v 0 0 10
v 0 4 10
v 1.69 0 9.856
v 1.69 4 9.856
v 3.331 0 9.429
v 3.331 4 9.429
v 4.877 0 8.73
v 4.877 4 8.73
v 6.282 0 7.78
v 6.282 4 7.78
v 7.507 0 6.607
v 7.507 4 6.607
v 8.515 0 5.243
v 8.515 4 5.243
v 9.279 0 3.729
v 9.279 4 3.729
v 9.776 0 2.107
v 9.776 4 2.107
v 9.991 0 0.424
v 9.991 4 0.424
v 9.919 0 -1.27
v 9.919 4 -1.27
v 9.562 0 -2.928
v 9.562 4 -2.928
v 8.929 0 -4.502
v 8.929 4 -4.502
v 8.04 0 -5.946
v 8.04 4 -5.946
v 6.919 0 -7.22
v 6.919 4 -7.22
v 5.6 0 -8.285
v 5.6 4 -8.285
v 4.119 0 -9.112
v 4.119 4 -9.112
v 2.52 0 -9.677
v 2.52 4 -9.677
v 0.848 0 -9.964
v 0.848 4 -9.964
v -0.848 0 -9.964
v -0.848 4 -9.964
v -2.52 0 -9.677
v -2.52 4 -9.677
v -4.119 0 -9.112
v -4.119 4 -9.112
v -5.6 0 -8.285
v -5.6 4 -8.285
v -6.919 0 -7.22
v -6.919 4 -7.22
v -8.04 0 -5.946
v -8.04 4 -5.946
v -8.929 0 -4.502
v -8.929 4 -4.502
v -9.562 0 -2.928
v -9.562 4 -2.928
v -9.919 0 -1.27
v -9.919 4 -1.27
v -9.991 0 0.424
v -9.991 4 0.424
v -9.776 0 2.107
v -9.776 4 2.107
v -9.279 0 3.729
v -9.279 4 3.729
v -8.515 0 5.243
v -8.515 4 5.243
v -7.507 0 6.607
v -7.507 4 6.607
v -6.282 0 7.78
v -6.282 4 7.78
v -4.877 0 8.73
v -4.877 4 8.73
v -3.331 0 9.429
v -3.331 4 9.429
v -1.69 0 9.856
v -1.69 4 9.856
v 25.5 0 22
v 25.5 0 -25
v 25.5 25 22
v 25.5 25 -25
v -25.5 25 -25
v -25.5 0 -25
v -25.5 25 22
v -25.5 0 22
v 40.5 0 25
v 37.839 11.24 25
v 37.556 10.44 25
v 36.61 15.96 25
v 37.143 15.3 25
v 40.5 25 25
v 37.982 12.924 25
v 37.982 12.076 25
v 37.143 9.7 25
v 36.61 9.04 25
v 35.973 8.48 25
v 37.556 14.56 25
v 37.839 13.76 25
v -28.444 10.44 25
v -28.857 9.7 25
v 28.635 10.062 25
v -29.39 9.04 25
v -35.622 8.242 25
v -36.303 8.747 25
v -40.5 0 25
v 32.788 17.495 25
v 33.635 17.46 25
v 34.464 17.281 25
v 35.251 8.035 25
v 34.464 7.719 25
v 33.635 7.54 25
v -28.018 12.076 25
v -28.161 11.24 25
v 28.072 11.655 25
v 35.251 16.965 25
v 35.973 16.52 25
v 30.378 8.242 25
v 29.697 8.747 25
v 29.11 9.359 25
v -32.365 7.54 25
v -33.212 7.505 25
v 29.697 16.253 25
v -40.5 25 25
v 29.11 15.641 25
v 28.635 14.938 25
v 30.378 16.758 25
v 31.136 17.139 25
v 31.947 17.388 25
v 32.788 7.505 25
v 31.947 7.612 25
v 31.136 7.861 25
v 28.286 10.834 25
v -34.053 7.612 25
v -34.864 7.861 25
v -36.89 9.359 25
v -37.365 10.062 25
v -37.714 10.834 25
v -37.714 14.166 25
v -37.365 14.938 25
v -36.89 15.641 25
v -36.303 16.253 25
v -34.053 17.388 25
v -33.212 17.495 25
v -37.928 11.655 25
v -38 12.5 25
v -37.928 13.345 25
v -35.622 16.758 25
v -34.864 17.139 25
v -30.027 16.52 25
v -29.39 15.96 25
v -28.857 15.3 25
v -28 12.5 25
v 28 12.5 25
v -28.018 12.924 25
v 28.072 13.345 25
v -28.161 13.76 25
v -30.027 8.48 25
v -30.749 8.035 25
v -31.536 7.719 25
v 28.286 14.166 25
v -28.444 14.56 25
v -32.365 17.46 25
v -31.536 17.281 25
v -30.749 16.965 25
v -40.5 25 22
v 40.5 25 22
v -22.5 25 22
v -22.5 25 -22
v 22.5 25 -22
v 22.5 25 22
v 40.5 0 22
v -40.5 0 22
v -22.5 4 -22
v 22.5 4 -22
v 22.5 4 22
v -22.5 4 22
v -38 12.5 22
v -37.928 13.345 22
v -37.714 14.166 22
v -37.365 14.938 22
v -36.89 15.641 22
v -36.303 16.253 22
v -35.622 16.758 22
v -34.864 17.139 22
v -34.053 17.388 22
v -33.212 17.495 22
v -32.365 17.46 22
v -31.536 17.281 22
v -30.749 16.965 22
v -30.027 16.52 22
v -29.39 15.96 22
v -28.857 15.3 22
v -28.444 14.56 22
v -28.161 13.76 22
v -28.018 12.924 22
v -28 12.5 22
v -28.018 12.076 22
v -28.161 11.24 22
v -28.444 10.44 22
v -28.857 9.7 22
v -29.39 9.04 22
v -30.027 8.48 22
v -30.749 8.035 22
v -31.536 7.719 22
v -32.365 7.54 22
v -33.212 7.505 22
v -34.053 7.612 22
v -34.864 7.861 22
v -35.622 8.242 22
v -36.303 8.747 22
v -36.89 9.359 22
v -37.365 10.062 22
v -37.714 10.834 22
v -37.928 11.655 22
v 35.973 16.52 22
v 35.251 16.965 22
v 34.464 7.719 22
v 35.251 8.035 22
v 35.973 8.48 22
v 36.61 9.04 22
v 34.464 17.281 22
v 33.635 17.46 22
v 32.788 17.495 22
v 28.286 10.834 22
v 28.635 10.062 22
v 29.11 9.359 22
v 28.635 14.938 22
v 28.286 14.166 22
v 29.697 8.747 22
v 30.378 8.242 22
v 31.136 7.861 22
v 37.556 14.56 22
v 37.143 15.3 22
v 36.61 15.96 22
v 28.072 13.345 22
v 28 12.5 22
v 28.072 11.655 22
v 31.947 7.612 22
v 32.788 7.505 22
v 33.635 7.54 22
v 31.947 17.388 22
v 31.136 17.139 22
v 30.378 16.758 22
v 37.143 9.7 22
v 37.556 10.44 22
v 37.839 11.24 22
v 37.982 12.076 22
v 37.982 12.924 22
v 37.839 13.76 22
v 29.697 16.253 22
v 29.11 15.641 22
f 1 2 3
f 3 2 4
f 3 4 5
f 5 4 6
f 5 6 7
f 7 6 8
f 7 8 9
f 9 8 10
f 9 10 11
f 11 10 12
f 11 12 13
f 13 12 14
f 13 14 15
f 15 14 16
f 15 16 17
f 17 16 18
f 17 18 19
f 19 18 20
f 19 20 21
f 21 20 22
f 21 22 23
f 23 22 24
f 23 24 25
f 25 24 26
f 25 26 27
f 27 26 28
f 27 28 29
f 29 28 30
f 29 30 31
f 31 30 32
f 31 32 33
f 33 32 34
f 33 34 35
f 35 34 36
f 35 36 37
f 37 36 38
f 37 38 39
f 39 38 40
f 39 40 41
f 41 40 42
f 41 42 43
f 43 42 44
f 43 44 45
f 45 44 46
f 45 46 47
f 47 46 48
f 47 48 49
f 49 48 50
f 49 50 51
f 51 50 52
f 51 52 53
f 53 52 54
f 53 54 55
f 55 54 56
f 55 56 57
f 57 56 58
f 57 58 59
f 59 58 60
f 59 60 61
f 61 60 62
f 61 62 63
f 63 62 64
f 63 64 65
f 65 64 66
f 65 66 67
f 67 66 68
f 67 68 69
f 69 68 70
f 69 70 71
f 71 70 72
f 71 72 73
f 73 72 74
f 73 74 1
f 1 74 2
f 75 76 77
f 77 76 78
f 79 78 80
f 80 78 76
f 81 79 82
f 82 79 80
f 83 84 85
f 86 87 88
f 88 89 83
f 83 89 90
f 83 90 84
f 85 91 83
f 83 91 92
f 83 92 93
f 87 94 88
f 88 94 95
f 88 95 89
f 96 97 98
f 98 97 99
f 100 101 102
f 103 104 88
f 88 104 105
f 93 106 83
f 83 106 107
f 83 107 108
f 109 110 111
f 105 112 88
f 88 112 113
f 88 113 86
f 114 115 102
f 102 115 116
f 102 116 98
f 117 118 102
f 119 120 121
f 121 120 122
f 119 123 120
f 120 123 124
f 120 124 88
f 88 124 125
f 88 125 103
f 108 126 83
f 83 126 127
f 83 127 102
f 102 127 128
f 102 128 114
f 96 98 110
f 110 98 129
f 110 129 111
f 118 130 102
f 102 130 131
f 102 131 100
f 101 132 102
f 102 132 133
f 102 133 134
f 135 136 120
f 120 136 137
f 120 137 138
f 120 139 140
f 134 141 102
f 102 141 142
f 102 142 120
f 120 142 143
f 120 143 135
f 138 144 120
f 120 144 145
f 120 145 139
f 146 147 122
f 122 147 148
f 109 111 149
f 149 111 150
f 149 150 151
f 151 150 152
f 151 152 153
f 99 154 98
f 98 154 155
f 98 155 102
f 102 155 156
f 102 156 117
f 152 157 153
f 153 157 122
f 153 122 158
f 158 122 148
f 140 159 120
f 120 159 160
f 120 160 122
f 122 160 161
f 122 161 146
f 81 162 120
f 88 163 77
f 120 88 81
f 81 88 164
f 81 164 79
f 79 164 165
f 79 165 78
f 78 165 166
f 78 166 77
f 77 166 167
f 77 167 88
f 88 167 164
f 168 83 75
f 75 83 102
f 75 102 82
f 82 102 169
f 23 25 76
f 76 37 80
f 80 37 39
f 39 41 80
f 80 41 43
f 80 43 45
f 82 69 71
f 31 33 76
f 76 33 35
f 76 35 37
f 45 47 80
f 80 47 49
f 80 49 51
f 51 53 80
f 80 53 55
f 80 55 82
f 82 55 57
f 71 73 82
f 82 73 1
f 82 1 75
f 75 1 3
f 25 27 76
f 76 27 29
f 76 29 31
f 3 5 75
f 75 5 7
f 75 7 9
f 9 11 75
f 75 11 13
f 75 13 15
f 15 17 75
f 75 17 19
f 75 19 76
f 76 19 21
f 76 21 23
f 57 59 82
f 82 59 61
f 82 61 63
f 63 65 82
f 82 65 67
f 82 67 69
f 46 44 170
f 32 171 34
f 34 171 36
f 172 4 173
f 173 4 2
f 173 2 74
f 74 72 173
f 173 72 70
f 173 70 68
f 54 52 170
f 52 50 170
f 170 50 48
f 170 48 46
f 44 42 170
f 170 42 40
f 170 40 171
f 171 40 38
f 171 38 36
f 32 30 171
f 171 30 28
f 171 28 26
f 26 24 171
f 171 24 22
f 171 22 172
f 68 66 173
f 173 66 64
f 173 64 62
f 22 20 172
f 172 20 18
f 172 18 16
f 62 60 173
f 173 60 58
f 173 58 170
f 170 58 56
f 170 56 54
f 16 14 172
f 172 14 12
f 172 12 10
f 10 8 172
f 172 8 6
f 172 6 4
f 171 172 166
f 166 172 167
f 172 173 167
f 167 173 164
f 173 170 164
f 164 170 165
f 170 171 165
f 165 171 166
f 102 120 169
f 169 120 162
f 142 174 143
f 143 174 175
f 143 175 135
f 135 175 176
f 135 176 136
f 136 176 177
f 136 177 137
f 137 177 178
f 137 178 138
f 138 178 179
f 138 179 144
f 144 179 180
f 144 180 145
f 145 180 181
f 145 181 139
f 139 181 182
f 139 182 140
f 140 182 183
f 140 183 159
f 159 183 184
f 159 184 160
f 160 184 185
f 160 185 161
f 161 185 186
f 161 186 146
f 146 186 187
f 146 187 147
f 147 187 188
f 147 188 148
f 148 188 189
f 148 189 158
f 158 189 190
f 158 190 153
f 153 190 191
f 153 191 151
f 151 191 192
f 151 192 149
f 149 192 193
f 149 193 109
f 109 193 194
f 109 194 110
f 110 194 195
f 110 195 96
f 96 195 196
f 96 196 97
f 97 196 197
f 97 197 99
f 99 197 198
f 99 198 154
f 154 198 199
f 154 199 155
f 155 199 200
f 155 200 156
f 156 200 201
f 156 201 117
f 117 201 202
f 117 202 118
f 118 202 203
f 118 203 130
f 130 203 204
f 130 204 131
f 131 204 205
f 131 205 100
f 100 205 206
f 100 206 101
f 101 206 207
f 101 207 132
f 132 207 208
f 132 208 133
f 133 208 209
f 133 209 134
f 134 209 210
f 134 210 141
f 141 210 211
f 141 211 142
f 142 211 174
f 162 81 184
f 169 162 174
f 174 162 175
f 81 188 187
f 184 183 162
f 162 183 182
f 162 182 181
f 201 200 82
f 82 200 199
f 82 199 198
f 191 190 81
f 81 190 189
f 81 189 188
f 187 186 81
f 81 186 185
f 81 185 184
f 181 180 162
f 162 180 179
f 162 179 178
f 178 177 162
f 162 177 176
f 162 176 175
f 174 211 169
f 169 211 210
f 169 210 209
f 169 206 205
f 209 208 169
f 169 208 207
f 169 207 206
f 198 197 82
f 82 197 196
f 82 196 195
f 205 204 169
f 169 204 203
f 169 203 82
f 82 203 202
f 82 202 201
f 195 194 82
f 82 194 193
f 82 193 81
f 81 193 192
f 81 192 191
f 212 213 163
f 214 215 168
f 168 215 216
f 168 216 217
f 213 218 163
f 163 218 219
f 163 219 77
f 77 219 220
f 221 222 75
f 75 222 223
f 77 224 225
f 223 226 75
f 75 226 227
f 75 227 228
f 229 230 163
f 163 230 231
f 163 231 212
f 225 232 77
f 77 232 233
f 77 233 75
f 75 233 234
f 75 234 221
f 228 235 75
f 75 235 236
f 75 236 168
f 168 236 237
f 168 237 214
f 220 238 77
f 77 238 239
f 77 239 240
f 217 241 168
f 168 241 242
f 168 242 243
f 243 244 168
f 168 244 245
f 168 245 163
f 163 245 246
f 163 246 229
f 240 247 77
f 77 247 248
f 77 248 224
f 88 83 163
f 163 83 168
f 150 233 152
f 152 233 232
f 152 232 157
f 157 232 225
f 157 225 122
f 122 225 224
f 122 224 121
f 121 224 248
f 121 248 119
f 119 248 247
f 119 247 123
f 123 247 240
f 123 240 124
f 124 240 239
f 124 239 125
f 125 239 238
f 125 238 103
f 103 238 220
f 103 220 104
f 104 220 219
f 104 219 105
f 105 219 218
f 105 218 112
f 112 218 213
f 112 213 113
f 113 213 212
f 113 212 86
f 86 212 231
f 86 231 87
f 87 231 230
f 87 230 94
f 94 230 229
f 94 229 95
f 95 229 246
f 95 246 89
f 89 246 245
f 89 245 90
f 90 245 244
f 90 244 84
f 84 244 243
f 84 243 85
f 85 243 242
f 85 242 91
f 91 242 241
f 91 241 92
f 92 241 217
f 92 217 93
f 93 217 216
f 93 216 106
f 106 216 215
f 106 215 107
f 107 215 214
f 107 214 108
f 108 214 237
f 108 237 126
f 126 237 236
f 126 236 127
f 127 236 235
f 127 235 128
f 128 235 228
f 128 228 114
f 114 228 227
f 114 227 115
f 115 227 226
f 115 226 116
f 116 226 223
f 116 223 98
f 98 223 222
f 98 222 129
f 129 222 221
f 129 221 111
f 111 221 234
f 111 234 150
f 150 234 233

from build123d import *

# Parameters (mm, degrees)
SKETCH_1_W          = 51
SKETCH_1_H          = 50
EXTRUDE_1_DEPTH     = 25
SKETCH_2_R          = 10
CUT_EXTRUDE_1_DEPTH = 26
SKETCH_3_W          = 45
SKETCH_3_H          = 44
CUT_EXTRUDE_2_DEPTH = 21
SKETCH_4_W          = 81
SKETCH_4_H          = 25
SKETCH_4_R          = 5
EXTRUDE_2_DEPTH     = 3


with BuildPart() as part:
    # 草圖1 → 填料-伸長1 (new body)
    with BuildSketch(Plane(origin=(0, 0, 0), x_dir=(1, 0, 0), z_dir=(0, 1, 0))):
        Rectangle(SKETCH_1_W, SKETCH_1_H)
    extrude(amount=EXTRUDE_1_DEPTH)

    # 草圖2 → 除料-伸長1 (cut, through all)
    with BuildSketch(Plane(origin=(0, 25, 0), x_dir=(1, 0, 0), z_dir=(0, 1, 0))):
        Circle(SKETCH_2_R)
    extrude(amount=-CUT_EXTRUDE_1_DEPTH, mode=Mode.SUBTRACT)

    # 草圖3 → 除料-伸長2 (cut)
    with BuildSketch(Plane(origin=(0, 25, 0), x_dir=(1, 0, 0), z_dir=(0, 1, 0))):
        Rectangle(SKETCH_3_W, SKETCH_3_H)
    extrude(amount=-CUT_EXTRUDE_2_DEPTH, mode=Mode.SUBTRACT)

    # 草圖4 → 填料-伸長2 (add)
    with BuildSketch(Plane(origin=(0, 0, 22), x_dir=(-1, 0, 0), z_dir=(0, 0, -1))):
        with Locations((0, 12.5)):
            Rectangle(SKETCH_4_W, SKETCH_4_H)
        with Locations((-33, 12.5)):
            Circle(SKETCH_4_R, mode=Mode.SUBTRACT)
        with Locations((33, 12.5)):
            Circle(SKETCH_4_R, mode=Mode.SUBTRACT)
    extrude(amount=-EXTRUDE_2_DEPTH)


solid = part.part
